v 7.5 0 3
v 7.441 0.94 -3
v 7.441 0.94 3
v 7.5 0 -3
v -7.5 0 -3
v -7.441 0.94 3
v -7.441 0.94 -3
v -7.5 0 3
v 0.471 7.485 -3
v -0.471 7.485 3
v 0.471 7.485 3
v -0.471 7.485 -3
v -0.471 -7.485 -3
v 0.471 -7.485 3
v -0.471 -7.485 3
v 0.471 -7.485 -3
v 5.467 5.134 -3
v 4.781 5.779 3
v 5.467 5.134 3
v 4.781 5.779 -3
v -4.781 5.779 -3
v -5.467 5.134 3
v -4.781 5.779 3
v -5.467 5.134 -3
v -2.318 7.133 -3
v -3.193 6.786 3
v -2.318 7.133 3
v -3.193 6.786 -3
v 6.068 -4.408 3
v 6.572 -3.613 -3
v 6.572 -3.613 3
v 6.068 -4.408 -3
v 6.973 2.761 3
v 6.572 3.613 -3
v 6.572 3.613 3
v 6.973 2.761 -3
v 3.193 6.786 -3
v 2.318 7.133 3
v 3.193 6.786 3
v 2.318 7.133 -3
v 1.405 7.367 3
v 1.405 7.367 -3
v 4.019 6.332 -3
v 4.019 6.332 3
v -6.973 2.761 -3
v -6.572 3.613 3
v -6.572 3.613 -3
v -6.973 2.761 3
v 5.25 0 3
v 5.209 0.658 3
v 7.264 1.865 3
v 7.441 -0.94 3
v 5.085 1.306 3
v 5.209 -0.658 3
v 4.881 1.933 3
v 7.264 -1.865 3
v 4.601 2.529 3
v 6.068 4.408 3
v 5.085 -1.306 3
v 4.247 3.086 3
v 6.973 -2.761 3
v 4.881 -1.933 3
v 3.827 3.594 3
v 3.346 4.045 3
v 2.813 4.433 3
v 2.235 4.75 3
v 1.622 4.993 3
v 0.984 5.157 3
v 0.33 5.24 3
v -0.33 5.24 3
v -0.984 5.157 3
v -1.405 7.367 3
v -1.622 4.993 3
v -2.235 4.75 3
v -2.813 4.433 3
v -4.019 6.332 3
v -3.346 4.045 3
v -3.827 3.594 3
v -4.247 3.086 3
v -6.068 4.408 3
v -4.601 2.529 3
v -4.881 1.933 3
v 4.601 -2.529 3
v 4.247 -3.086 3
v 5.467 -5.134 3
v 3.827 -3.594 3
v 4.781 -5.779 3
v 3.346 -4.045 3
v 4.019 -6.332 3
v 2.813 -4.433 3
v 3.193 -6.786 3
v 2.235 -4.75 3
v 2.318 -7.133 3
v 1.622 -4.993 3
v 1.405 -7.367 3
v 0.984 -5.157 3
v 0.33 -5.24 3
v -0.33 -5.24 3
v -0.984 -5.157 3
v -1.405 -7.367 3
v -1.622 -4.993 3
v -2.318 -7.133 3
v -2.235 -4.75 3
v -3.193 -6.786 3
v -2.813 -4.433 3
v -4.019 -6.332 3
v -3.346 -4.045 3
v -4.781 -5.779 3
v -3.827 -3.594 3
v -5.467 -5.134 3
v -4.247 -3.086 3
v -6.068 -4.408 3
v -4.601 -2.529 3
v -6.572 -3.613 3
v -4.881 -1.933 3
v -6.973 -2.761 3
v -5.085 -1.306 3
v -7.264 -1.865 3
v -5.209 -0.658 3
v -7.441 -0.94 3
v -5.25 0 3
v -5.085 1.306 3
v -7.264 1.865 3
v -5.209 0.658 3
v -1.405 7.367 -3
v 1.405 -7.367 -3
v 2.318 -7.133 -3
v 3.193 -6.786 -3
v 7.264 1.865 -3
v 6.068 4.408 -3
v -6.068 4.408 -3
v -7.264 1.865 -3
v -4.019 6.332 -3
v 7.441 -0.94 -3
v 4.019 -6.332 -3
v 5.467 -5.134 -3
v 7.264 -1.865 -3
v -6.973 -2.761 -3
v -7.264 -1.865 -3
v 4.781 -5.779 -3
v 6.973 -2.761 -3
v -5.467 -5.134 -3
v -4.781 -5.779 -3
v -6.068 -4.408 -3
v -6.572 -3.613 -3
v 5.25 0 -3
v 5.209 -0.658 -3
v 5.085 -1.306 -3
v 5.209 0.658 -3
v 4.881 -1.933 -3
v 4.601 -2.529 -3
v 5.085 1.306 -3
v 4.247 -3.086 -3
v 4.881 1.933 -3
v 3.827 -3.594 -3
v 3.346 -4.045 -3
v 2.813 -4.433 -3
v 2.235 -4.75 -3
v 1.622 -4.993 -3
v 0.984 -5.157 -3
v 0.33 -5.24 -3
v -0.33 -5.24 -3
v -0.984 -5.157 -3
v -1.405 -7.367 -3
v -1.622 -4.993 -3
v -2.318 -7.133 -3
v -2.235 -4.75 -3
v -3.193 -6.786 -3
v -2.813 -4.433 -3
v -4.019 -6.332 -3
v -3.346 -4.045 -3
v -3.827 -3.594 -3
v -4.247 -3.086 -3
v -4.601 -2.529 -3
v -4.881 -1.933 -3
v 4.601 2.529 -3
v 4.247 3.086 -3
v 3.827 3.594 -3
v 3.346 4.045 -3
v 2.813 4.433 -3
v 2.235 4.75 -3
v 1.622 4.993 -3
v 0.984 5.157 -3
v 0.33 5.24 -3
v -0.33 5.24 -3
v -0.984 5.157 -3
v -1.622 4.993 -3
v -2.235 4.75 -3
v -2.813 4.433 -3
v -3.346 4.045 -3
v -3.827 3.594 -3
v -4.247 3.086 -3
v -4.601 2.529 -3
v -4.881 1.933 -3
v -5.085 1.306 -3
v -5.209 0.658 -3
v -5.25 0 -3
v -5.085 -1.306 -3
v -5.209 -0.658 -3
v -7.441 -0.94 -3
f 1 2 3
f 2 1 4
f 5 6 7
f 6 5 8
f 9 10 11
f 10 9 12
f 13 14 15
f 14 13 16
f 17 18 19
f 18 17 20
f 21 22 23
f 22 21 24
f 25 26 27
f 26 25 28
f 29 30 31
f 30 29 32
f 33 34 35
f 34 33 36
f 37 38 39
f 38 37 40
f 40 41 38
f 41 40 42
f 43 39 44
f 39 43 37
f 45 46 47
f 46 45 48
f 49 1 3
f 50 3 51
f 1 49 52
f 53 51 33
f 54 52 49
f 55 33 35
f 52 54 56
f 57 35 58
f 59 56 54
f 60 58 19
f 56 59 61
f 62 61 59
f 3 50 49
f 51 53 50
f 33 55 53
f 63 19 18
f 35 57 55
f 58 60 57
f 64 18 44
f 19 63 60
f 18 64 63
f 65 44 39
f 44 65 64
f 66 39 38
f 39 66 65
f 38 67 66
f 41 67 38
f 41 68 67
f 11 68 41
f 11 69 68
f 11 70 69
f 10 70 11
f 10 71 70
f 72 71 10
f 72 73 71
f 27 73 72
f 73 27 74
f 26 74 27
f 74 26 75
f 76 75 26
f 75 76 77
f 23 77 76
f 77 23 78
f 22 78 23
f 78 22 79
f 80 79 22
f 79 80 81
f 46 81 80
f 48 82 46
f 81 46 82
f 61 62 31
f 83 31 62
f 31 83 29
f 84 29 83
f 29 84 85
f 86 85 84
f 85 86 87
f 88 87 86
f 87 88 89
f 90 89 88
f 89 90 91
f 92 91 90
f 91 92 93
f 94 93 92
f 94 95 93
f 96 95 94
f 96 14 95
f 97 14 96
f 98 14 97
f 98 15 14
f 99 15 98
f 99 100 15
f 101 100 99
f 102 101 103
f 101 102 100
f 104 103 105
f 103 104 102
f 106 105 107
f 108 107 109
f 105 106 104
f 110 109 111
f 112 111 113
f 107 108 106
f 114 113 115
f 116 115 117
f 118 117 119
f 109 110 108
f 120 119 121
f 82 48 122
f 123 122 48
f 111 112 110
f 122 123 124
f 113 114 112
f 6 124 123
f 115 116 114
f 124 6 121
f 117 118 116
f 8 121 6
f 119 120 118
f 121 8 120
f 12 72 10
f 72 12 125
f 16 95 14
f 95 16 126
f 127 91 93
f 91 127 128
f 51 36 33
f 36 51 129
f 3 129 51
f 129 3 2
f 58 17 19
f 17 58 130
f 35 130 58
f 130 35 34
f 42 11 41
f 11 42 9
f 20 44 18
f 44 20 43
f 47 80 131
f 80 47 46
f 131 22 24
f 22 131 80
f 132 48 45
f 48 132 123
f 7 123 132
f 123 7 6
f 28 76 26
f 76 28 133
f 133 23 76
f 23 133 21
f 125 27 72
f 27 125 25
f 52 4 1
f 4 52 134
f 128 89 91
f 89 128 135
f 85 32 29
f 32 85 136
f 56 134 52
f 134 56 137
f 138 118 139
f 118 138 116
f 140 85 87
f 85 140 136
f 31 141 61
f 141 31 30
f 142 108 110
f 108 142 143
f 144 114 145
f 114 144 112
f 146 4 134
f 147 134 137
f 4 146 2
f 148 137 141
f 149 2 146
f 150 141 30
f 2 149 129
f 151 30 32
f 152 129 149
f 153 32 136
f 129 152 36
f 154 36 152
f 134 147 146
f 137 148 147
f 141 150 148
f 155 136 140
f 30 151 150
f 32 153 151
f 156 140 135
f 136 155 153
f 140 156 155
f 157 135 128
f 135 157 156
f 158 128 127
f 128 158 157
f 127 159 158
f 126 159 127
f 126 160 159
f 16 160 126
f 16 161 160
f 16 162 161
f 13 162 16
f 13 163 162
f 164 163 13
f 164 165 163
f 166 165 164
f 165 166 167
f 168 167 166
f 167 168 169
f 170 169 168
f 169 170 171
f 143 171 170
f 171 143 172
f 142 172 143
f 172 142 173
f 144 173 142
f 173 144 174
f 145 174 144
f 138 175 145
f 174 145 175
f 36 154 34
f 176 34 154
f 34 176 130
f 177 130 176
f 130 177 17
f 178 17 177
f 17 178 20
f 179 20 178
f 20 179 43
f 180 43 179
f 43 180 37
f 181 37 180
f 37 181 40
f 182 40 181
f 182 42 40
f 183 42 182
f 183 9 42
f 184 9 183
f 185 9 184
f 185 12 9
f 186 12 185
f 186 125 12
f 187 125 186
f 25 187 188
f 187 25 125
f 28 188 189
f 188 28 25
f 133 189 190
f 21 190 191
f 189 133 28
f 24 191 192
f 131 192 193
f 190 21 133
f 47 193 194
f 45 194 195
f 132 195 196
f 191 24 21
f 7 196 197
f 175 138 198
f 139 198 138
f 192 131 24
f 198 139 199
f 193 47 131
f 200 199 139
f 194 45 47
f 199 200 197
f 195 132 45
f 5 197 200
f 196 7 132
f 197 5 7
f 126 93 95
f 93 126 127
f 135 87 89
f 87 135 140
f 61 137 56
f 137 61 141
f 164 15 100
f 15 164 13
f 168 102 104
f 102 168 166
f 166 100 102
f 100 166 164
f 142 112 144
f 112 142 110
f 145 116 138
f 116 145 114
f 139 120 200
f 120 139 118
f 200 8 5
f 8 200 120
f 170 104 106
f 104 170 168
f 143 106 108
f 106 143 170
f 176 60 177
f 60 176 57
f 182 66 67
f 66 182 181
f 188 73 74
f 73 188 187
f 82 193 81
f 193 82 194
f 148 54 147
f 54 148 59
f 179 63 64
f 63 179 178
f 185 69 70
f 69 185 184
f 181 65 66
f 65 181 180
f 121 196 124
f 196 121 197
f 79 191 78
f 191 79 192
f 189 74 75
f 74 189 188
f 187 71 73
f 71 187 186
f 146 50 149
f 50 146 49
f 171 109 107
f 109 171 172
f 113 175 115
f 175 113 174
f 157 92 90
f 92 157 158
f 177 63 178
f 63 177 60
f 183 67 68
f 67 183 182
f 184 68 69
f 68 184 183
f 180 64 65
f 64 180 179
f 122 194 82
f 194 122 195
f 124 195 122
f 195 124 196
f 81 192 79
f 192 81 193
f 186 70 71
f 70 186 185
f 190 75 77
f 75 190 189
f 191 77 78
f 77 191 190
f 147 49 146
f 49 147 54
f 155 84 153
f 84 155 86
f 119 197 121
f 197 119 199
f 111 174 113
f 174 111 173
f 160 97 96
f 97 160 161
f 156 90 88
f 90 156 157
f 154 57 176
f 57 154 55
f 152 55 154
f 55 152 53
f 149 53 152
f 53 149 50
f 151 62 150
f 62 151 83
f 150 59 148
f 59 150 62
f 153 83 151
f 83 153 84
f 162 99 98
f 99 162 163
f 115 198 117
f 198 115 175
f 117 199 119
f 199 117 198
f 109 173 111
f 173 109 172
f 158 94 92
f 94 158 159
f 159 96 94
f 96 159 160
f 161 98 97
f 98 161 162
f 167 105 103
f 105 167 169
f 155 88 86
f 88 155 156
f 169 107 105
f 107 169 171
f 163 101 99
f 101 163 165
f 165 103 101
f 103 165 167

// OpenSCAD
$fn = 50;


difference() {
	union() {
		translate(v = [0, 0, -3.0000000000]) {
			cylinder(h = 6, r = 7.5000000000);
		}
	}
	union() {
		translate(v = [0, 0, -100.0000000000]) {
			cylinder(h = 200, r = 5.2500000000);
		}
	}
}
